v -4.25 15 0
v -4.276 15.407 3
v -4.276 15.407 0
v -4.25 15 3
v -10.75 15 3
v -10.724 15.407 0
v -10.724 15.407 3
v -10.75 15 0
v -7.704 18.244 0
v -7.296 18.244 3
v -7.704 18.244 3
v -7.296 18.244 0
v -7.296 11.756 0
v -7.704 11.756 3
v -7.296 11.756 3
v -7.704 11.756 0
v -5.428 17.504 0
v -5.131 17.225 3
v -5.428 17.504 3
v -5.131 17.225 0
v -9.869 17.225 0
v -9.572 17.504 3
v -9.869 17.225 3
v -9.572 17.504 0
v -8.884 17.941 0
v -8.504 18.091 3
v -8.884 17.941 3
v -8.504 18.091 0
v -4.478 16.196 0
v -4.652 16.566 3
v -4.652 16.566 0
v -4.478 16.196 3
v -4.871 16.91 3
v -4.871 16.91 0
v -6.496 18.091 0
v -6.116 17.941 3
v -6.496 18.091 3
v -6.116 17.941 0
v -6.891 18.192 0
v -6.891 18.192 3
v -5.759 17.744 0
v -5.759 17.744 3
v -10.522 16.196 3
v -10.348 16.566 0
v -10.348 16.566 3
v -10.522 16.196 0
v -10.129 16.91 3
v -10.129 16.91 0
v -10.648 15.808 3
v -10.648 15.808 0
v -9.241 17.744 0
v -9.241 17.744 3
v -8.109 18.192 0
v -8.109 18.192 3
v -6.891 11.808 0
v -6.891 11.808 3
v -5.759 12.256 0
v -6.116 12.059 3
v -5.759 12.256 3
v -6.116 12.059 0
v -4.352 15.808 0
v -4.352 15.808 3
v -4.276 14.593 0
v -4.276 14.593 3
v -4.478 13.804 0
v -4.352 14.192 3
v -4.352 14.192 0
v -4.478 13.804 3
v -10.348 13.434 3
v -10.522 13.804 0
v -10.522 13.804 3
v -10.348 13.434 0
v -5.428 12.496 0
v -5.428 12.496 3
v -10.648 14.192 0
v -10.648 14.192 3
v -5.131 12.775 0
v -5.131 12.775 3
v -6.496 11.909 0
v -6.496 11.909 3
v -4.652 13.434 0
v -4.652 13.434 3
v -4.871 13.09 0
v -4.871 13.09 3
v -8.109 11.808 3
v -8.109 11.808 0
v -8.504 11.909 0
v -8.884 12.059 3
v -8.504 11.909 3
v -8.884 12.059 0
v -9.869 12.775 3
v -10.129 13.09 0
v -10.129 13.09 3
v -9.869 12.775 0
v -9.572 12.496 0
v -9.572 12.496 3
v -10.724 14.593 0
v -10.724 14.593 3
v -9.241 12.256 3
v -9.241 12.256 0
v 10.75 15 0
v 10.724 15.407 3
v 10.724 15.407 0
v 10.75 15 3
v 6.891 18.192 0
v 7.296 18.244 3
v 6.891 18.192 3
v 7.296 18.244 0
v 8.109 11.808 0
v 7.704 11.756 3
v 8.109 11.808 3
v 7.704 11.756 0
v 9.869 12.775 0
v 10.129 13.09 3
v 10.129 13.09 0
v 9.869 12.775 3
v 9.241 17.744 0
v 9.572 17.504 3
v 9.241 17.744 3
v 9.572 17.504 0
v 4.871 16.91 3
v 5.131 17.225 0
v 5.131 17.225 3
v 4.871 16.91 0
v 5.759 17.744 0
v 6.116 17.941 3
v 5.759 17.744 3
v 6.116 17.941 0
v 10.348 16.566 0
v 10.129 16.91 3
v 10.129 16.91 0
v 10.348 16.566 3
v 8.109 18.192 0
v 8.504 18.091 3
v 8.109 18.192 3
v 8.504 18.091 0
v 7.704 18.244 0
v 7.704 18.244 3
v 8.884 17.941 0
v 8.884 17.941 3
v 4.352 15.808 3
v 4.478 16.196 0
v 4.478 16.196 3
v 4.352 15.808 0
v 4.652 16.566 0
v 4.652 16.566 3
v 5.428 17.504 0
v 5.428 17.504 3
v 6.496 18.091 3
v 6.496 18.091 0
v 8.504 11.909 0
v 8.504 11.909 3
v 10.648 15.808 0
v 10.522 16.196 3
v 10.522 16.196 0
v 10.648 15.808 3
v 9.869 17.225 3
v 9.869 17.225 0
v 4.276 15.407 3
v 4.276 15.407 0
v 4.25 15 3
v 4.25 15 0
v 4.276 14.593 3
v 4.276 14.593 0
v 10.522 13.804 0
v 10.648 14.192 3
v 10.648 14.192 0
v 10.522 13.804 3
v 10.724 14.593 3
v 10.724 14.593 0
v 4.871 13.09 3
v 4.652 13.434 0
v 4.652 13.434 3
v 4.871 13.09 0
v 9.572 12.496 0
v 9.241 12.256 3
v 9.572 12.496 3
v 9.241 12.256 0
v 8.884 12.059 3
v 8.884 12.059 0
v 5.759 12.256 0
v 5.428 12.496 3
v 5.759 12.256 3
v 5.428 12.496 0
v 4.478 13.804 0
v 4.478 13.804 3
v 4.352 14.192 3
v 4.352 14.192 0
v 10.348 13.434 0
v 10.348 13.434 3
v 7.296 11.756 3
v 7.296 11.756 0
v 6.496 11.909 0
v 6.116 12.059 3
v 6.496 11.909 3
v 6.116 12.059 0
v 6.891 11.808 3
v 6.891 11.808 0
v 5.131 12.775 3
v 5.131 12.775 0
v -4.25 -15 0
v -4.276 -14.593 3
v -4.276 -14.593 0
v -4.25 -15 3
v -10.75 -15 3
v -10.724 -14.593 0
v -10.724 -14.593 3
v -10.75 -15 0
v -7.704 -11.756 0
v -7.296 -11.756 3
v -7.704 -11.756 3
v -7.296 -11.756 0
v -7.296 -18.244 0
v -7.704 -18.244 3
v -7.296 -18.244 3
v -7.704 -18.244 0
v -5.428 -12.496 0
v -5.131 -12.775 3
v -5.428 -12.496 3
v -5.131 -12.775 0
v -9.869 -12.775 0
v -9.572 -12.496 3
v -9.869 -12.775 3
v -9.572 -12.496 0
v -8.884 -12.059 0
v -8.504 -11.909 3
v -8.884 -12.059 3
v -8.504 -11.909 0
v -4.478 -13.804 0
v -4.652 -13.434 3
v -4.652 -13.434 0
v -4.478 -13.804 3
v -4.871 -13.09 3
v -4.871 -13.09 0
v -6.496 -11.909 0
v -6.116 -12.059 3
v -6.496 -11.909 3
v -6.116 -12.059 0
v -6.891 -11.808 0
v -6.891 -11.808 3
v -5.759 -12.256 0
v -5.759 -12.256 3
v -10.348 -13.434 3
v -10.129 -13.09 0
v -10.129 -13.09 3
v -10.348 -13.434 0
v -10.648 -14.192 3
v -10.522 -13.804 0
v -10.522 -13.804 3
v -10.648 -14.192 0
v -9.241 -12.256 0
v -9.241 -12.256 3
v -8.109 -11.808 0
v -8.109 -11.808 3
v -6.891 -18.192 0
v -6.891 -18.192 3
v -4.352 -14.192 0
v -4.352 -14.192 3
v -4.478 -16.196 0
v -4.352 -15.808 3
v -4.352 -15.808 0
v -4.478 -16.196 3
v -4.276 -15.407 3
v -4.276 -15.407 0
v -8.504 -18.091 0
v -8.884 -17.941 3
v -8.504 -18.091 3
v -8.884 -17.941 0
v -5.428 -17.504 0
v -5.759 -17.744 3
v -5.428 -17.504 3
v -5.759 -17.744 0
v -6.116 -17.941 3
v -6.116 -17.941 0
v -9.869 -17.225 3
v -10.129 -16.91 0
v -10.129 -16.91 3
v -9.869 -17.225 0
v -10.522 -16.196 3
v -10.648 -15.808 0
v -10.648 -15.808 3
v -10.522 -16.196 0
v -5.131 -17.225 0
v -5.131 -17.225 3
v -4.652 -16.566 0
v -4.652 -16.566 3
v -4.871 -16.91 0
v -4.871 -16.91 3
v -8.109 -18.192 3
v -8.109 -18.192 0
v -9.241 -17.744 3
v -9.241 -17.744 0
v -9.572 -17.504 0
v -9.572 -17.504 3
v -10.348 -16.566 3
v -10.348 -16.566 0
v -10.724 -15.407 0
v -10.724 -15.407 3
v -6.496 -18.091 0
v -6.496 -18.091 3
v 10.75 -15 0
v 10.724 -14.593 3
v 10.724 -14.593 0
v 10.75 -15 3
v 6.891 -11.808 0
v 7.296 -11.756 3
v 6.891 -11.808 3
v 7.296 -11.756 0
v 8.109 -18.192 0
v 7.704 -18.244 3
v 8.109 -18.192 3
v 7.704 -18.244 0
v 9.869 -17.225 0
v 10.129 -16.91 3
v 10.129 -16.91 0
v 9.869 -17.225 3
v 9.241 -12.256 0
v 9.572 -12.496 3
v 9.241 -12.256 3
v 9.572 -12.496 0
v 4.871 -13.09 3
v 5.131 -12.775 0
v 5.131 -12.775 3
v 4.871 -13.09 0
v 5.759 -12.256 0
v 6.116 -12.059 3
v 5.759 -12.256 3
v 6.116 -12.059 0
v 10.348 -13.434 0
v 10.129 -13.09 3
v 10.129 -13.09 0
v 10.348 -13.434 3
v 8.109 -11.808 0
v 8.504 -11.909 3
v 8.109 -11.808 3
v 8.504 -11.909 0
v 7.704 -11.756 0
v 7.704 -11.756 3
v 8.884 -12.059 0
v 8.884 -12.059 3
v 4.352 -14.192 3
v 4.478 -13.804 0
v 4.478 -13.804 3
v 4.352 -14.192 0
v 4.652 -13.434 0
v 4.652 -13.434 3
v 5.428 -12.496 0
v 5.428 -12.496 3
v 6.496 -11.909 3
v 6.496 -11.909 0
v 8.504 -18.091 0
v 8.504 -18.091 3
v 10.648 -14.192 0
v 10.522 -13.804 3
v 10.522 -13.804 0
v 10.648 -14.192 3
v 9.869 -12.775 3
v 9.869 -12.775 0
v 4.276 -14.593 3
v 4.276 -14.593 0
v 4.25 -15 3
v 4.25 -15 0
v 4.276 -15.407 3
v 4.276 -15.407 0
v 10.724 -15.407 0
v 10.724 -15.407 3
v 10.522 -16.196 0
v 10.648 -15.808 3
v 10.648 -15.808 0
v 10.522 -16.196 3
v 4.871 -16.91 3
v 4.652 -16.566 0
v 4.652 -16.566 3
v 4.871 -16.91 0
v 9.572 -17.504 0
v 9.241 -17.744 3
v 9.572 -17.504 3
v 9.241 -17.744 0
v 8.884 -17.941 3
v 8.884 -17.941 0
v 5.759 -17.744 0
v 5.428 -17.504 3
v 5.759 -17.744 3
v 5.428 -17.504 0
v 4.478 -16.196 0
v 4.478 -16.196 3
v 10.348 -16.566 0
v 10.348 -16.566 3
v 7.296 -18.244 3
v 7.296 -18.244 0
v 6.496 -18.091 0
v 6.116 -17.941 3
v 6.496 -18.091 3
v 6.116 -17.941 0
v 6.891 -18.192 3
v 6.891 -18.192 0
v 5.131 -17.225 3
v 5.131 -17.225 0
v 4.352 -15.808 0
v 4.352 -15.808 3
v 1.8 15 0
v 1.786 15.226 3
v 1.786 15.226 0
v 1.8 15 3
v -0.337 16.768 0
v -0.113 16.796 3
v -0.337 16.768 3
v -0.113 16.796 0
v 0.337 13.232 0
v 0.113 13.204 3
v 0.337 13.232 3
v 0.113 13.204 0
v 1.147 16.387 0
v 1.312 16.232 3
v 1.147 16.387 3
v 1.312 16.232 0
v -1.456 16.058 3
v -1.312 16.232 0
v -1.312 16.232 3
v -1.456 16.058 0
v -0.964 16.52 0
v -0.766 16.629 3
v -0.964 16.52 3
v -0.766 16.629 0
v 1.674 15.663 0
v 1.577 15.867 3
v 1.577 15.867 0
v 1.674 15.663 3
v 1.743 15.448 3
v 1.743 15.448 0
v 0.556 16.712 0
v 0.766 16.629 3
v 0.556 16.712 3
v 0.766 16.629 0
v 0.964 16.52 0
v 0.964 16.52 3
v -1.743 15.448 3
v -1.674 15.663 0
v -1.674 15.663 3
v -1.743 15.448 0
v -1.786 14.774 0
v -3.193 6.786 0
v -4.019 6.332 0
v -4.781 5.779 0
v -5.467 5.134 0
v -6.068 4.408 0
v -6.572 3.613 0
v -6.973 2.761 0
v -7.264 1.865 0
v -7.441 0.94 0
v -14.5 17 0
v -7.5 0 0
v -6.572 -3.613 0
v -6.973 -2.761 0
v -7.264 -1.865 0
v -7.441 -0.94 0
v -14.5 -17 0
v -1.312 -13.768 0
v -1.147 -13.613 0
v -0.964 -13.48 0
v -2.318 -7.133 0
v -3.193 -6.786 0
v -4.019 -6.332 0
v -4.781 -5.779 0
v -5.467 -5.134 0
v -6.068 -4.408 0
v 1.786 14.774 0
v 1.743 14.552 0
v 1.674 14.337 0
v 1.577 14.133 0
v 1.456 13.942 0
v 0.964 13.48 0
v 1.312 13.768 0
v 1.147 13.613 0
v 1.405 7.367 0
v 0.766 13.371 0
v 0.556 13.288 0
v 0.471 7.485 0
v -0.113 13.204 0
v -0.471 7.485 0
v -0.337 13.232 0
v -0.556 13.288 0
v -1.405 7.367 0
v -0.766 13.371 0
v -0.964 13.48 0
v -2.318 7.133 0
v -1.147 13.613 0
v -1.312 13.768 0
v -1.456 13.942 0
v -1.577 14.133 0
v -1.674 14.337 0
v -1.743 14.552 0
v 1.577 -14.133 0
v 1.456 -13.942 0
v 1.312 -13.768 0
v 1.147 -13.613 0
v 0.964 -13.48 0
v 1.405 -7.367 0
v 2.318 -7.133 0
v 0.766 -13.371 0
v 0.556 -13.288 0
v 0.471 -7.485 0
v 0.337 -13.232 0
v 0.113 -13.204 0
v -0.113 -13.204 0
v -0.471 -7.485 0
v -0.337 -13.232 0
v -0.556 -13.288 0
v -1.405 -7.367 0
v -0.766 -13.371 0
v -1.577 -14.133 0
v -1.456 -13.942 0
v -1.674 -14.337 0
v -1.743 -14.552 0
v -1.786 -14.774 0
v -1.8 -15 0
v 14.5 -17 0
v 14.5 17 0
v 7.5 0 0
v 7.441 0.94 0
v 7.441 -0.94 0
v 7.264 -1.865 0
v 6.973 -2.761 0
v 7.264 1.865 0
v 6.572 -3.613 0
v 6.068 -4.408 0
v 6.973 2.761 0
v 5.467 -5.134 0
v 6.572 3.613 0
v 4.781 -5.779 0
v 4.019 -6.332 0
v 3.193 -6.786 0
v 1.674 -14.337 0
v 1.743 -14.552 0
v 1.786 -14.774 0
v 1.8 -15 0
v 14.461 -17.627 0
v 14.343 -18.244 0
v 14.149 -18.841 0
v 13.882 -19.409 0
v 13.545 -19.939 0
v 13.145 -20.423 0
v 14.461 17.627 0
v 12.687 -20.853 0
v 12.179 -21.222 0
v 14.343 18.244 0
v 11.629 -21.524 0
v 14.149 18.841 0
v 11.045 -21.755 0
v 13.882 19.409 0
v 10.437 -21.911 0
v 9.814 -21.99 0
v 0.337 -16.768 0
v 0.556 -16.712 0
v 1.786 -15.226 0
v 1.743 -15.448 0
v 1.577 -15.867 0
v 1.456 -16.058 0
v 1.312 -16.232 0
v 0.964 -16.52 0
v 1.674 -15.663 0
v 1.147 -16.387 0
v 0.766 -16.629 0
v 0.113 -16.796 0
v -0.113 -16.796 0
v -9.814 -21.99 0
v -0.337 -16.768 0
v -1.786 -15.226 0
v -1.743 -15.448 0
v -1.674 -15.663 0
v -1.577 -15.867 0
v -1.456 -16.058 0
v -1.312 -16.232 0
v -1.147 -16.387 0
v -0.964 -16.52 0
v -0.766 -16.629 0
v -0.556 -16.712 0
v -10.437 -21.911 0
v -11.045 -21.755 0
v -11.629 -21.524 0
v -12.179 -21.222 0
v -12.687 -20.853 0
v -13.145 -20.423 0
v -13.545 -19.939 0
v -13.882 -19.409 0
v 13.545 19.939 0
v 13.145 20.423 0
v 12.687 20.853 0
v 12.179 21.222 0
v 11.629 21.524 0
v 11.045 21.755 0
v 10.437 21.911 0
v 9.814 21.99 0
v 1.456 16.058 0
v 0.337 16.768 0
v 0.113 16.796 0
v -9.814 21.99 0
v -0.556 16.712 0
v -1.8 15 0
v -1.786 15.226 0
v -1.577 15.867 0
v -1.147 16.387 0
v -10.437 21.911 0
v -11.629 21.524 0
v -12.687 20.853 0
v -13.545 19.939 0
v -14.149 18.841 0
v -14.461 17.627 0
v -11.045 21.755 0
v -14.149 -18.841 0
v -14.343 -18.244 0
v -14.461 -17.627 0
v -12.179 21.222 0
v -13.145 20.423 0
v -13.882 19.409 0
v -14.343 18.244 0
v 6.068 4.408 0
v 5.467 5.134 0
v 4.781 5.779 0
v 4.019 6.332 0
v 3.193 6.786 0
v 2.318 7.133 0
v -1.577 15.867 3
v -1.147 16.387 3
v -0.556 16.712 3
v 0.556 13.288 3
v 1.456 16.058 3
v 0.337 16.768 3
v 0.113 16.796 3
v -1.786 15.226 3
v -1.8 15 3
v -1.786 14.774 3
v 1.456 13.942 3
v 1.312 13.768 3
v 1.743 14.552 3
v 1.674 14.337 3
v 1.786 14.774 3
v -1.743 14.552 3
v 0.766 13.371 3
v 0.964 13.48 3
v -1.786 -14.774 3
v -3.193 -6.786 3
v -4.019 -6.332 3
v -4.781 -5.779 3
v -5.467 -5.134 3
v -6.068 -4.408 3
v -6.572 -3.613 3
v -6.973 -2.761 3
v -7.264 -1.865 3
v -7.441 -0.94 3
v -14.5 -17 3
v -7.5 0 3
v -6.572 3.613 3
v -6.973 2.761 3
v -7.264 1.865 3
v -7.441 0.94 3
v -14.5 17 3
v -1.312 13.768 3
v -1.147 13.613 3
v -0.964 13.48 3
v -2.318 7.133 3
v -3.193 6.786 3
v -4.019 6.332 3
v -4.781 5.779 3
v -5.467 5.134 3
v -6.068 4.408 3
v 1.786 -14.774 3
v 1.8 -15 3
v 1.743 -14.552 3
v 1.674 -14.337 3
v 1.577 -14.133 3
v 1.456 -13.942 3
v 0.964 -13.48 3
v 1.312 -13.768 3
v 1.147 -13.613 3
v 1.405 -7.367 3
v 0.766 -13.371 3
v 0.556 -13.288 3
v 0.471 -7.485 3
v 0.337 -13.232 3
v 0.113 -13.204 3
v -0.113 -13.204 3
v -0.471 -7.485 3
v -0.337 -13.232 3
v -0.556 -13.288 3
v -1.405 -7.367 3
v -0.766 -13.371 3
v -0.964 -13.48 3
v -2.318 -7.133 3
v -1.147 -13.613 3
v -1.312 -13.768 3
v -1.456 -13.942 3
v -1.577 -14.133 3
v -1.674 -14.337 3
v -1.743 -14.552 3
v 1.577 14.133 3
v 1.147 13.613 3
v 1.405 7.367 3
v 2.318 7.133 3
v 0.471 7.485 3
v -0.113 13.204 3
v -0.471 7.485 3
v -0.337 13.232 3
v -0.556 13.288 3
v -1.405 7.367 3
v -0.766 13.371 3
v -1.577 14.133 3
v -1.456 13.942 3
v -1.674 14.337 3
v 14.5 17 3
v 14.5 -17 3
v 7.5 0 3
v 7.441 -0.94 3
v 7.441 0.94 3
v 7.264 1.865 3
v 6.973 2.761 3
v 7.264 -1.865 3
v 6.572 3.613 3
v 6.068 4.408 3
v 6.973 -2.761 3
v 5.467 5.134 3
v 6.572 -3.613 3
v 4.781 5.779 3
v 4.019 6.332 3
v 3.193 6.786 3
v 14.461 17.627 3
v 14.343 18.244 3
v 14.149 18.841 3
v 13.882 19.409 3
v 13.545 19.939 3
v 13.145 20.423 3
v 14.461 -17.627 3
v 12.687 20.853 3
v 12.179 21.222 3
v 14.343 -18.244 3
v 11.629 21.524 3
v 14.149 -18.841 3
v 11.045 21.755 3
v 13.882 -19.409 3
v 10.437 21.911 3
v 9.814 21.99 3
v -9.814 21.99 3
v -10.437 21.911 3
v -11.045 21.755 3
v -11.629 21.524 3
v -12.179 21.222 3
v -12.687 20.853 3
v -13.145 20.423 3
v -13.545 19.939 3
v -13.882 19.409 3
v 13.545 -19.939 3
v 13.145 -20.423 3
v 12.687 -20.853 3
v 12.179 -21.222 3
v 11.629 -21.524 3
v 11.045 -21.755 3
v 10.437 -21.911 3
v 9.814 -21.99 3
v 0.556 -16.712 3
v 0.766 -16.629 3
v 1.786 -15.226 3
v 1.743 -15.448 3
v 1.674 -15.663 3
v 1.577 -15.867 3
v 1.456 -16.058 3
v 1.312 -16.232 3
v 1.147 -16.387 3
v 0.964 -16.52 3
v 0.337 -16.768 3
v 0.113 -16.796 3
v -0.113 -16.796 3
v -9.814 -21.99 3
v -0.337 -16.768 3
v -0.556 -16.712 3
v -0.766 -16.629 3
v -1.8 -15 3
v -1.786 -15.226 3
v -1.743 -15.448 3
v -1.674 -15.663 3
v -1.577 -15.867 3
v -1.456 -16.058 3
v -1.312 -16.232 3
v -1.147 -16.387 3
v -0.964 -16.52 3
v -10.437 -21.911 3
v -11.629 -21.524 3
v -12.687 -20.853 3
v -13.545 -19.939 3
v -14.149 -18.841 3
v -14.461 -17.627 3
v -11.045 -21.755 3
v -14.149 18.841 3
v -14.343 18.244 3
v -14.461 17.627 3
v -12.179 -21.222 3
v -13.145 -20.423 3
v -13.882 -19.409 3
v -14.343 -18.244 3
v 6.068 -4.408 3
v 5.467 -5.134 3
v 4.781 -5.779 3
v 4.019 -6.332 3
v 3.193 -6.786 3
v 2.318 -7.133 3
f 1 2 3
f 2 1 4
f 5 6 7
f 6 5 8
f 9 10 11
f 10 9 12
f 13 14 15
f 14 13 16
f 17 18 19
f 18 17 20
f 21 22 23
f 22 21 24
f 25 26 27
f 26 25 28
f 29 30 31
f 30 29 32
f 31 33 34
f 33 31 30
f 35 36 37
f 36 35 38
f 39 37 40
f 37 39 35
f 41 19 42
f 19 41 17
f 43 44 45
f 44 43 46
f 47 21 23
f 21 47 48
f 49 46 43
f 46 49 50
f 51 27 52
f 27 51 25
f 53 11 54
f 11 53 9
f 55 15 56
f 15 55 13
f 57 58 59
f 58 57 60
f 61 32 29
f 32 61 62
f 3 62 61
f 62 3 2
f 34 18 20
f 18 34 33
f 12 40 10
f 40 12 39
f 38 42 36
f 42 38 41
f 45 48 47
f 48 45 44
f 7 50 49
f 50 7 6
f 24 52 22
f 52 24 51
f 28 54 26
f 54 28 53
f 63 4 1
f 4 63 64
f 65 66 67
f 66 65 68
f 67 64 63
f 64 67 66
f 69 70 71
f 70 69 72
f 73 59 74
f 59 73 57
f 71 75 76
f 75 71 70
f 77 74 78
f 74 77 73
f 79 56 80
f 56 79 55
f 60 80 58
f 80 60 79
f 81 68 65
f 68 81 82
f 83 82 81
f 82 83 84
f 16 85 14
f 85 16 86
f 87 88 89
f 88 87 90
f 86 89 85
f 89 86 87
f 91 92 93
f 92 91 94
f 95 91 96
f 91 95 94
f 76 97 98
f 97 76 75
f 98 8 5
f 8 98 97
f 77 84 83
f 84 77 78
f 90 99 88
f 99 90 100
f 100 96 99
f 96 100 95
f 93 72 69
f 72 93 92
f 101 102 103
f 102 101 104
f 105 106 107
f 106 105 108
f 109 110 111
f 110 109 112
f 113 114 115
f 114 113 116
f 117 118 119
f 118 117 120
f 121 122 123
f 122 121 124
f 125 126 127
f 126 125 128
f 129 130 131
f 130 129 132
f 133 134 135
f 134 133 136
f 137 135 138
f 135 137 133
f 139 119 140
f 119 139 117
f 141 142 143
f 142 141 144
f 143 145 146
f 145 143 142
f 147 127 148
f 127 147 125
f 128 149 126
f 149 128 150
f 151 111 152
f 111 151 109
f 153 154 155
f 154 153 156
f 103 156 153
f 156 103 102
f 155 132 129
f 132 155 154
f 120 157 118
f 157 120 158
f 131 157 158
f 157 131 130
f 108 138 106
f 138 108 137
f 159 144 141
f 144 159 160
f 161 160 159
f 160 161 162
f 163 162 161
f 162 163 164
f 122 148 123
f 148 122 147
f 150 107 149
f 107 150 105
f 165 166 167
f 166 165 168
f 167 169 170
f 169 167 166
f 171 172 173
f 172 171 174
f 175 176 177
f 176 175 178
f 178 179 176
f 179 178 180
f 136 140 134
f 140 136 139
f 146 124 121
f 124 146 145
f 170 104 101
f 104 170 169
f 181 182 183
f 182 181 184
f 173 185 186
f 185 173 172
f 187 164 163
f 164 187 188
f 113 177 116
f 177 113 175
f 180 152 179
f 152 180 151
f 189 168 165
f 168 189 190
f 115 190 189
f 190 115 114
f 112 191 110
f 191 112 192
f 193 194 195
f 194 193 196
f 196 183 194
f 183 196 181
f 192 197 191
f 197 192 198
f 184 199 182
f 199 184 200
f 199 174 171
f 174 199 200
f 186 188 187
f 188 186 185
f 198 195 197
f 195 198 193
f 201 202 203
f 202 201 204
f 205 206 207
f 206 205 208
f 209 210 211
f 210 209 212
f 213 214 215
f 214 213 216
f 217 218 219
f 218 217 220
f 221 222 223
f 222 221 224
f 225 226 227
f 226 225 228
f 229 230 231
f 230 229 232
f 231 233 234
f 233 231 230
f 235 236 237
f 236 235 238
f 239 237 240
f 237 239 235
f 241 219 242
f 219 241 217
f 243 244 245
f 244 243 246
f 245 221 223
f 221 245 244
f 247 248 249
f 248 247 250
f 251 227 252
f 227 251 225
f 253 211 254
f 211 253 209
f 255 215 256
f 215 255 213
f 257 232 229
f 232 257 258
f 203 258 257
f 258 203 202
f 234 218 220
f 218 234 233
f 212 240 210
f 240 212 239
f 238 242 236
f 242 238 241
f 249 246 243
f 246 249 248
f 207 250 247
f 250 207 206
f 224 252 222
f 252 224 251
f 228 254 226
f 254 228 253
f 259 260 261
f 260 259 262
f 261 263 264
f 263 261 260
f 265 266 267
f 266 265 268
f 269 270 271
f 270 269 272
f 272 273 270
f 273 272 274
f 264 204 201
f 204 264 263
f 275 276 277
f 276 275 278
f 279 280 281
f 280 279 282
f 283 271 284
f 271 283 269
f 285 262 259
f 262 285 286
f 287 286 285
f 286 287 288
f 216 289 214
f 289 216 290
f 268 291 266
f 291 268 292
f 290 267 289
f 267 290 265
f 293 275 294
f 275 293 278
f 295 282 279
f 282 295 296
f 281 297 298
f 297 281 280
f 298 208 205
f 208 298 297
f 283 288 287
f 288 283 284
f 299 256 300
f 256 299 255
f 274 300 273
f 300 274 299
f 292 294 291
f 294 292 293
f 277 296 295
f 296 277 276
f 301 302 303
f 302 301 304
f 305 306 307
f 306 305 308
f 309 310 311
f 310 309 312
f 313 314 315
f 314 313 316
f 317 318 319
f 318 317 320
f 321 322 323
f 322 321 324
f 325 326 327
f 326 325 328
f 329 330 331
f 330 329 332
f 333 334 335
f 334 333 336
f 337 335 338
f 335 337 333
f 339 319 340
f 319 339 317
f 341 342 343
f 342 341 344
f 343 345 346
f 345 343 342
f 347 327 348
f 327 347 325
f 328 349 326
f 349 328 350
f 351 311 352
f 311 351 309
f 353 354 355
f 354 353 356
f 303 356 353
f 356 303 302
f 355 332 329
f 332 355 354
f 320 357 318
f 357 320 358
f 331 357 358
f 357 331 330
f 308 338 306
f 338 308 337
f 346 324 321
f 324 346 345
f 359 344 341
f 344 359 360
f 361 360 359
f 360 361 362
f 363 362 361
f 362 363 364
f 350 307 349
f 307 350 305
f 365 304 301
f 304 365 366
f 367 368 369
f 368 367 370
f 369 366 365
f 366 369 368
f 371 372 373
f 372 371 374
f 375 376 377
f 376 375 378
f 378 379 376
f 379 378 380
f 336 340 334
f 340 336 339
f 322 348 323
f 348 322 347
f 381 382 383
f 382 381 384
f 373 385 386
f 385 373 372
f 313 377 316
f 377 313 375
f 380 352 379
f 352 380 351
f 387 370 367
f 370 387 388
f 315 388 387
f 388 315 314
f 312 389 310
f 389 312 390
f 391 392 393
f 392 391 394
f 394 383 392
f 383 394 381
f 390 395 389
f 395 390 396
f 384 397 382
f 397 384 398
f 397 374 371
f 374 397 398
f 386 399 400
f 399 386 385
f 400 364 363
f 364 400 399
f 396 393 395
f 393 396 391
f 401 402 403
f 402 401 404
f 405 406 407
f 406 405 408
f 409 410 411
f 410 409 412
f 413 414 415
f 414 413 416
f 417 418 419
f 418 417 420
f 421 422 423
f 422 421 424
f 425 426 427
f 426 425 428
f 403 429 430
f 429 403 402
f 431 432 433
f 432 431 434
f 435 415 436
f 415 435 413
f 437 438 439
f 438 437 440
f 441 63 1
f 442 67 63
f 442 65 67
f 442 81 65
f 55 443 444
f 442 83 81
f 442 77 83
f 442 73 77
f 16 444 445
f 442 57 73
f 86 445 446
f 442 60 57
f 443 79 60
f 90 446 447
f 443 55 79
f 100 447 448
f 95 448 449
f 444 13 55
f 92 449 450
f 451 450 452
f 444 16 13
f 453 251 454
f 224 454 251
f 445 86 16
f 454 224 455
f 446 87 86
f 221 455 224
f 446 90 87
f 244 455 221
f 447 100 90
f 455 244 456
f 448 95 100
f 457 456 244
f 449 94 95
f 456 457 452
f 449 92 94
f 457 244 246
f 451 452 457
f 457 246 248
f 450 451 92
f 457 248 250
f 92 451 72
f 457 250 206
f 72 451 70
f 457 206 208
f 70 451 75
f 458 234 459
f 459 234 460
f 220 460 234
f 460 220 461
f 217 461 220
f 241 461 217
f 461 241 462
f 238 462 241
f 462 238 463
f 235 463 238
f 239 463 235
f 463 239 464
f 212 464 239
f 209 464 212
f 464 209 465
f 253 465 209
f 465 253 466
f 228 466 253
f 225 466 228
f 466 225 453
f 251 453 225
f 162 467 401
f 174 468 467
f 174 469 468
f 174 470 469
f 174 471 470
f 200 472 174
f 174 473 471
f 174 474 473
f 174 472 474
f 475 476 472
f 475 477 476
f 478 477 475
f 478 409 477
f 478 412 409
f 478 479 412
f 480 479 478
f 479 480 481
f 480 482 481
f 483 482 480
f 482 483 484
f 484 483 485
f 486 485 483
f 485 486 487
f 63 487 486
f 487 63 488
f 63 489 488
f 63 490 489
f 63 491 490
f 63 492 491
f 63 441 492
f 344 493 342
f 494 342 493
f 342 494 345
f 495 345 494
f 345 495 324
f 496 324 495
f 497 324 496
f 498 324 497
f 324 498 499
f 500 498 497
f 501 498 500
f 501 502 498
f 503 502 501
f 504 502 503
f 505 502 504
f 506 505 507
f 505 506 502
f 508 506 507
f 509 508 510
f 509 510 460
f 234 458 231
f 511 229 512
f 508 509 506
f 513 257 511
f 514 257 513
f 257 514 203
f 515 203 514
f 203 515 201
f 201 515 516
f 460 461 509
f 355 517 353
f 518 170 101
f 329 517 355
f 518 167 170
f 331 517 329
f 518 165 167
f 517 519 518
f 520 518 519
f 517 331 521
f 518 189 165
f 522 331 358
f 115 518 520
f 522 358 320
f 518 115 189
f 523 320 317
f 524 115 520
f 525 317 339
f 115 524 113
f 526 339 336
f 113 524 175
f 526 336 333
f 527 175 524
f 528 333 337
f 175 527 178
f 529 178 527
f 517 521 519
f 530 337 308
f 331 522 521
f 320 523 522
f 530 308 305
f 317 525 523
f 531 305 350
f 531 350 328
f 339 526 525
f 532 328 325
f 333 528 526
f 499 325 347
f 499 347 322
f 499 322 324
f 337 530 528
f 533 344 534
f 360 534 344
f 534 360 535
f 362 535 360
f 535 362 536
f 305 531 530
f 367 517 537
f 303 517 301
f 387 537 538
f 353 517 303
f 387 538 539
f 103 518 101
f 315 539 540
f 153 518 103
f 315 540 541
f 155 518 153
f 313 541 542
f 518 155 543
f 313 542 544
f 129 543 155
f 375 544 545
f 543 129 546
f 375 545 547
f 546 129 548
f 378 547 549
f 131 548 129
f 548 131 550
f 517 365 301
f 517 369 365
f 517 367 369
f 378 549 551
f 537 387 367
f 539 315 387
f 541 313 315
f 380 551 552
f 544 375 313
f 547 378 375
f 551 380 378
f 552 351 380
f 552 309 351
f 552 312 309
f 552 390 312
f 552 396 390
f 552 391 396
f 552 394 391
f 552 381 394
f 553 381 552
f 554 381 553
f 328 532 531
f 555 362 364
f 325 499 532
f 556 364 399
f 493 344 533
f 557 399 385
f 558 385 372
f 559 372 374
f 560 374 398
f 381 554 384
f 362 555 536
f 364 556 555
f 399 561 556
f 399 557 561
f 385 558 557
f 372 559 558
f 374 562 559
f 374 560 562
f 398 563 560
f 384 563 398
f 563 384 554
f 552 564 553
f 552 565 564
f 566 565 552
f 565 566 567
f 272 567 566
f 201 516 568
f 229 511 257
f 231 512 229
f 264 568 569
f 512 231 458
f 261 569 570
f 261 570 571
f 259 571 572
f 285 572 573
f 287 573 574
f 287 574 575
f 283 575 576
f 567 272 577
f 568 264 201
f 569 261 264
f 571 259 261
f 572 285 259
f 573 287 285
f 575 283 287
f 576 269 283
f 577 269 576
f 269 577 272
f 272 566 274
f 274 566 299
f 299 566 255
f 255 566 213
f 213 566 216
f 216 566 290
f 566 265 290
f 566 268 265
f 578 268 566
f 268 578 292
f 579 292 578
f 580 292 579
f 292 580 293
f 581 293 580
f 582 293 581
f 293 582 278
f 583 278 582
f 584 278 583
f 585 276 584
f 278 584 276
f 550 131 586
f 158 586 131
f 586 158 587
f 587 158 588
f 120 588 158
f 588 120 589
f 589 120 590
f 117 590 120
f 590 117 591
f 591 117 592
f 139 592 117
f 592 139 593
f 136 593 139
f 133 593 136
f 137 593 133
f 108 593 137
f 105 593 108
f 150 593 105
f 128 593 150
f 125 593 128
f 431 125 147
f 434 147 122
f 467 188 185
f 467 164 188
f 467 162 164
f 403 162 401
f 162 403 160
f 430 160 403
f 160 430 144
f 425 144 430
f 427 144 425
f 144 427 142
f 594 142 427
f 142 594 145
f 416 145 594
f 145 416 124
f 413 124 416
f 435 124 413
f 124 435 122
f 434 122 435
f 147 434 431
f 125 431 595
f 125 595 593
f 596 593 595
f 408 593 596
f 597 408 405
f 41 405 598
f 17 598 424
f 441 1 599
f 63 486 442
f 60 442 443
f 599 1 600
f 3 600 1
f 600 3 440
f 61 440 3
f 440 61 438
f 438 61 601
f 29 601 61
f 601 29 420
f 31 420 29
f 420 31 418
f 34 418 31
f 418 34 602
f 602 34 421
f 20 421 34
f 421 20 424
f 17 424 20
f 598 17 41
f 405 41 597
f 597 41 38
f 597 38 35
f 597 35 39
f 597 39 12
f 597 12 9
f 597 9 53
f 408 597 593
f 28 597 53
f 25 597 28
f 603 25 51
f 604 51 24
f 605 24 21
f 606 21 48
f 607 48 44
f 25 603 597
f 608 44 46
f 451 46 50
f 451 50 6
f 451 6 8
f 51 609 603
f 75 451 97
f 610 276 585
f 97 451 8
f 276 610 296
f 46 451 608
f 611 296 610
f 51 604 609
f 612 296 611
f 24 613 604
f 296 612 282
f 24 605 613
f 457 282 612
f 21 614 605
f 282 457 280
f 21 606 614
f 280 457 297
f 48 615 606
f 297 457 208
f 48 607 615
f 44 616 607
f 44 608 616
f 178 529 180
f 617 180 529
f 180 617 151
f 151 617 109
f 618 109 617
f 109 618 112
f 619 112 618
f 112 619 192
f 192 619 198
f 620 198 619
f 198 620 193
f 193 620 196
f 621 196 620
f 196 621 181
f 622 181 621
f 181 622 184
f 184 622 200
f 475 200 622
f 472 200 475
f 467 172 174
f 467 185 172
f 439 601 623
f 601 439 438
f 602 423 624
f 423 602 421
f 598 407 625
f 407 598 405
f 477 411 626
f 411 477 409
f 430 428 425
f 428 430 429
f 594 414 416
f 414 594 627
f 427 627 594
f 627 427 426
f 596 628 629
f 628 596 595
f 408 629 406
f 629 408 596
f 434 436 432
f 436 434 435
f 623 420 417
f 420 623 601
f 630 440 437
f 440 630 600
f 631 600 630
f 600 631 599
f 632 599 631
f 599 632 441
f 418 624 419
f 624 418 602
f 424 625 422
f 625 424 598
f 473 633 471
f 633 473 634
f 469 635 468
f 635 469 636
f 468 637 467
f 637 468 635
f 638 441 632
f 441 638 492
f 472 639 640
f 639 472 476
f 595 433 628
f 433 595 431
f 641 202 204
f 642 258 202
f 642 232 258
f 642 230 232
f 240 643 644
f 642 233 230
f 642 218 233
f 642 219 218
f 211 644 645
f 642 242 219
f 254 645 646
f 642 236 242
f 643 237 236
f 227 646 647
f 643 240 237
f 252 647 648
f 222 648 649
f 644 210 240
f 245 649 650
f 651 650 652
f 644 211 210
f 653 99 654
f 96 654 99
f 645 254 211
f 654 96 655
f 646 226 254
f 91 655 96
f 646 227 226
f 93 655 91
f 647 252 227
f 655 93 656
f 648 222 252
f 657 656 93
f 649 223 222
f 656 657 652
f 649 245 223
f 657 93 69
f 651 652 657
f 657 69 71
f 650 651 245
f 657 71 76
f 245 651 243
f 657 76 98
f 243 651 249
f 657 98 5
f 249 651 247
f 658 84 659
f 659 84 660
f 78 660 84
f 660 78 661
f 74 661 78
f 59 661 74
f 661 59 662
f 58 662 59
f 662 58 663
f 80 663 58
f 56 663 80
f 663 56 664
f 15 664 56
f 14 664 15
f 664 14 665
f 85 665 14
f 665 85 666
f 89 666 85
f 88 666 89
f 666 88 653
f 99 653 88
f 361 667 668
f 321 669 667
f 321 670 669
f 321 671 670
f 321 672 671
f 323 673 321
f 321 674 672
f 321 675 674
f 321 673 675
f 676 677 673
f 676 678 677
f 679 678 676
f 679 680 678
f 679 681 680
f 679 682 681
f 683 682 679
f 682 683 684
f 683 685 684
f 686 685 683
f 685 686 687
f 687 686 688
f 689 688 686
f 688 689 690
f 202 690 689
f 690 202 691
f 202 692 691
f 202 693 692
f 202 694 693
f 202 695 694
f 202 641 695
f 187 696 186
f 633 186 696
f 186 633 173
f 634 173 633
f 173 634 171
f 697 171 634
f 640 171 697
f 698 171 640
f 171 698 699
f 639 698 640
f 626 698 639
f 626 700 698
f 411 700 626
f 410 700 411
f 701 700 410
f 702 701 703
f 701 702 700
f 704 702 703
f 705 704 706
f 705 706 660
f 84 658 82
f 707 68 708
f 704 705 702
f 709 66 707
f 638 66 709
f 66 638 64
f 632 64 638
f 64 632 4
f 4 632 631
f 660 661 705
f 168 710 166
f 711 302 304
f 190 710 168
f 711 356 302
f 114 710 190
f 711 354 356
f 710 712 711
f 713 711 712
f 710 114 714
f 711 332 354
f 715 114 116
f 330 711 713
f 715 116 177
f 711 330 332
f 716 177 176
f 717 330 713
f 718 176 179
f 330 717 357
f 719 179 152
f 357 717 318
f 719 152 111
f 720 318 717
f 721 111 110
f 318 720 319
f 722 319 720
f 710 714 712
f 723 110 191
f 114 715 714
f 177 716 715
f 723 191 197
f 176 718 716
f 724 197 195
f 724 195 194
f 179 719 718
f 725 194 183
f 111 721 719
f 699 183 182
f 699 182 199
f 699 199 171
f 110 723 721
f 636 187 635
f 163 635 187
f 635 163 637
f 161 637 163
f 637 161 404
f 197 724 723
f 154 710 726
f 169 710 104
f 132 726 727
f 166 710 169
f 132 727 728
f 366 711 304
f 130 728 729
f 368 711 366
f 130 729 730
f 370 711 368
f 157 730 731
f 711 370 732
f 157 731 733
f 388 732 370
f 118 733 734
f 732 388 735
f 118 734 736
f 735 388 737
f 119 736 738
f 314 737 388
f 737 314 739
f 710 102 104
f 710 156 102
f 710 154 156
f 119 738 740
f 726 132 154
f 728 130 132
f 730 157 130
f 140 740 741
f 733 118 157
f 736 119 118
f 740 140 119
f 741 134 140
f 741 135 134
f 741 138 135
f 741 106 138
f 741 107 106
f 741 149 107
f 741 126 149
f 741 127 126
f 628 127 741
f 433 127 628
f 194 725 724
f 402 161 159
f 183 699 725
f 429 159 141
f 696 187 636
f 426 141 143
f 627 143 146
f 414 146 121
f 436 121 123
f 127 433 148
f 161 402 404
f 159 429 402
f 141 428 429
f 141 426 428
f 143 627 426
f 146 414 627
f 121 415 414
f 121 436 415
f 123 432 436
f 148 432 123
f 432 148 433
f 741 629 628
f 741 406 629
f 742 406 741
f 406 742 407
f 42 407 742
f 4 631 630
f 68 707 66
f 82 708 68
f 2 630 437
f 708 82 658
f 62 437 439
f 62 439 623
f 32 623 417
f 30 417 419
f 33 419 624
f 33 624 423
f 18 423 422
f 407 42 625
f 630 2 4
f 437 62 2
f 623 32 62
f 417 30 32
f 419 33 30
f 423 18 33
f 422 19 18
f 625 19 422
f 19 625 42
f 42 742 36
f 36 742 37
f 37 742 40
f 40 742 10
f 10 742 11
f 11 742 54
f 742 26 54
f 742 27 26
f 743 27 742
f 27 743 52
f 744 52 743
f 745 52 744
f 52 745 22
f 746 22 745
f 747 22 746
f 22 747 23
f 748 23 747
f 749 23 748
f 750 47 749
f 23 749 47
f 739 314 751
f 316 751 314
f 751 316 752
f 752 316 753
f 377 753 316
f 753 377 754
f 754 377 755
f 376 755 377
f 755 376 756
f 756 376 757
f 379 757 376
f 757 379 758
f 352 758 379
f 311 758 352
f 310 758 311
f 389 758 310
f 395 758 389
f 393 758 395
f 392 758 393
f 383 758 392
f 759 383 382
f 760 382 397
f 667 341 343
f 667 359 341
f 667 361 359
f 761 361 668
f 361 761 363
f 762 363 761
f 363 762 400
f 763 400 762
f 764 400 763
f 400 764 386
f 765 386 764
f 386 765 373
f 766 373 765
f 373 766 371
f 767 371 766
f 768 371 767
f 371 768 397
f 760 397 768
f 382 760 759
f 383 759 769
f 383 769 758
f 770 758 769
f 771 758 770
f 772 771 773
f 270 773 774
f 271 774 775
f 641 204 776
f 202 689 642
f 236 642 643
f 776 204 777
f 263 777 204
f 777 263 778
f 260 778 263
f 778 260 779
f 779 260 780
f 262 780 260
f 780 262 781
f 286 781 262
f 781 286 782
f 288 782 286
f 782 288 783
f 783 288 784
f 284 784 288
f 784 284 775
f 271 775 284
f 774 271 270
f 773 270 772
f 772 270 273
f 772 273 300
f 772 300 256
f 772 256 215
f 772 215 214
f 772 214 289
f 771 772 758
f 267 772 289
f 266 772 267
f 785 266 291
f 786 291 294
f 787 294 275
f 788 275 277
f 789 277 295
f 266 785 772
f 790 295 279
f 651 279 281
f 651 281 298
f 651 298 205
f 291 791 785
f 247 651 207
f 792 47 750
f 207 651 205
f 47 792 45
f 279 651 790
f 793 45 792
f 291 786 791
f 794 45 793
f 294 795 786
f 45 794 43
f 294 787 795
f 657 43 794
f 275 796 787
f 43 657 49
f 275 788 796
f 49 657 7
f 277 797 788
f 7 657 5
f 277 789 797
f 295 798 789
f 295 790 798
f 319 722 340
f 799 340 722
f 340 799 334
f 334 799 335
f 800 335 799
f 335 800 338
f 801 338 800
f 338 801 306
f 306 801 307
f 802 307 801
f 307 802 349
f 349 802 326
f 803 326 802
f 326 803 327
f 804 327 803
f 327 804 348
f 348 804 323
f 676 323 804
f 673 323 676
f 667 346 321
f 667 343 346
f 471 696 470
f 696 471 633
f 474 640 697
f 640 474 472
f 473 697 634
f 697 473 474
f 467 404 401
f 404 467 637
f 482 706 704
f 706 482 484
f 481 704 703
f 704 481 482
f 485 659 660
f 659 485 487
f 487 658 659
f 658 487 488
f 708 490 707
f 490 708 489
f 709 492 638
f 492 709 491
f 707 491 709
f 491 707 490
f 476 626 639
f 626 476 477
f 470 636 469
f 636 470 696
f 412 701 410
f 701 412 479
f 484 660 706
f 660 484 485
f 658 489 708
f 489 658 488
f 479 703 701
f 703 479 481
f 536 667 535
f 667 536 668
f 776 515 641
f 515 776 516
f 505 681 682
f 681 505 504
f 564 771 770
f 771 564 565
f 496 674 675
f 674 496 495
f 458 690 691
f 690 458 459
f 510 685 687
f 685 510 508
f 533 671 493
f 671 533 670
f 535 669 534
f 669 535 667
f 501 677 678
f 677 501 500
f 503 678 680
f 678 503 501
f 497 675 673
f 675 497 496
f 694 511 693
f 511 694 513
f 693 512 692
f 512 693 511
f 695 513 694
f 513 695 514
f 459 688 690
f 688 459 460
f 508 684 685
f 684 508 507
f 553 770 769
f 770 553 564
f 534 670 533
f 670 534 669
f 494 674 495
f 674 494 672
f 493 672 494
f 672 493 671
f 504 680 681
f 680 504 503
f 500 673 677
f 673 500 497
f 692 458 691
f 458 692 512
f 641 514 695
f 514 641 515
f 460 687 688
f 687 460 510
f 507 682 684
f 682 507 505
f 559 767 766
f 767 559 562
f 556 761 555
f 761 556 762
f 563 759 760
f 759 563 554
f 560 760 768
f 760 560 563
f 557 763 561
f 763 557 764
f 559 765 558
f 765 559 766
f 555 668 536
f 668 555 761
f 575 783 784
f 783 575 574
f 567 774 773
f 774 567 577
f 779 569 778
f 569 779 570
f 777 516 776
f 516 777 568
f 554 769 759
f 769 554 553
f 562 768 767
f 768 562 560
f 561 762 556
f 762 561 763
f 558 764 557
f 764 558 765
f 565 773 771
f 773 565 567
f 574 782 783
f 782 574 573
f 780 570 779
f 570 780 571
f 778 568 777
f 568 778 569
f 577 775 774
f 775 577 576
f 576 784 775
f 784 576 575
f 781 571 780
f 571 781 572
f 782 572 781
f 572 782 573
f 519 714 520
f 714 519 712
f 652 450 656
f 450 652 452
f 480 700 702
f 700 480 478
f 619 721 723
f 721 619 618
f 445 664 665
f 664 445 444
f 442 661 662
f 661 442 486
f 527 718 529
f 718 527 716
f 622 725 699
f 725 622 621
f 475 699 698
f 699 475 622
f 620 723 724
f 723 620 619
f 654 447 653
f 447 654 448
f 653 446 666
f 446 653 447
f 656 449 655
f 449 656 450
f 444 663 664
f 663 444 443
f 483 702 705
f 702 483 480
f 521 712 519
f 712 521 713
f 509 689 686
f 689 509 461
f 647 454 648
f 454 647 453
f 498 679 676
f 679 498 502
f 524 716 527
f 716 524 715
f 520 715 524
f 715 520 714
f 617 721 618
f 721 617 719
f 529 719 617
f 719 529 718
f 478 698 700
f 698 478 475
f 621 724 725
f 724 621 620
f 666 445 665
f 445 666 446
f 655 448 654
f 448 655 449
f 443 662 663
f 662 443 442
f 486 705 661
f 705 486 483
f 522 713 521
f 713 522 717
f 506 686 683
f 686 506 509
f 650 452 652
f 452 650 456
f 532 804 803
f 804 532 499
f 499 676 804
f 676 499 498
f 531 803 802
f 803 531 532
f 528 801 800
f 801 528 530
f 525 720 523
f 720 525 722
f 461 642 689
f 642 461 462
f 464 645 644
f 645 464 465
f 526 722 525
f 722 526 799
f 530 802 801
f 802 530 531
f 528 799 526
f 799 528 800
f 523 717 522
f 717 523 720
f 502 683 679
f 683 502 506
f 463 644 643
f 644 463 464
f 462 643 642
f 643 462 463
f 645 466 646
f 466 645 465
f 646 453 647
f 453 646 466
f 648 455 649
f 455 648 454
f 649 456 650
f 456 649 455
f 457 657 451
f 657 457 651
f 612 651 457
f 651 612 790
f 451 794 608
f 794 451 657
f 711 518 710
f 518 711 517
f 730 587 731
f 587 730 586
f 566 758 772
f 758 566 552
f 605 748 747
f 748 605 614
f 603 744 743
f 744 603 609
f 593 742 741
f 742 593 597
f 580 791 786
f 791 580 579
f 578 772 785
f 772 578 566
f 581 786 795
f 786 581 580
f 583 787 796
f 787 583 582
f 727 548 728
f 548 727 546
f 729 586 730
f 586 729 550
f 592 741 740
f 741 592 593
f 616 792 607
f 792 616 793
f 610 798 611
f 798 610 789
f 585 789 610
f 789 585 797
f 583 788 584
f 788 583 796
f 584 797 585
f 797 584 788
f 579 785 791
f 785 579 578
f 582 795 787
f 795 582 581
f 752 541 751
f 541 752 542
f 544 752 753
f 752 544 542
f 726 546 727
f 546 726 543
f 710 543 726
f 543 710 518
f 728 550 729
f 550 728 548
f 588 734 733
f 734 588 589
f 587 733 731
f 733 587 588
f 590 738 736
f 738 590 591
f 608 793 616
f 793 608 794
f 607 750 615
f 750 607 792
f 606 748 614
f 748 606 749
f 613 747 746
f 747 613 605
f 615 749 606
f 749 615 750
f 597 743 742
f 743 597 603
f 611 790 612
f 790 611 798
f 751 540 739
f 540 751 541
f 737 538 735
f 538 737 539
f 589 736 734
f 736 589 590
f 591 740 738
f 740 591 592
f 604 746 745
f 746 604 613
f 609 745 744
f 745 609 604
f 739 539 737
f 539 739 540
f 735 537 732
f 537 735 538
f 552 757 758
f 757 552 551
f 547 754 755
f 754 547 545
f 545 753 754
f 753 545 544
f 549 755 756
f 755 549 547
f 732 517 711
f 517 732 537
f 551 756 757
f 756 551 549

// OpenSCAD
$fn = 50;


difference() {
	union() {
		hull() {
			translate(v = [-9.5000000000, 17.0000000000, 0]) {
				cylinder(h = 3, r = 5);
			}
			translate(v = [9.5000000000, 17.0000000000, 0]) {
				cylinder(h = 3, r = 5);
			}
			translate(v = [-9.5000000000, -17.0000000000, 0]) {
				cylinder(h = 3, r = 5);
			}
			translate(v = [9.5000000000, -17.0000000000, 0]) {
				cylinder(h = 3, r = 5);
			}
		}
	}
	union() {
		#translate(v = [-7.5000000000, 15.0000000000, 0]) {
			cylinder(h = 3, r = 3.2500000000);
		}
		#translate(v = [7.5000000000, 15.0000000000, 0]) {
			cylinder(h = 3, r = 3.2500000000);
		}
		#translate(v = [-7.5000000000, -15.0000000000, 0]) {
			cylinder(h = 3, r = 3.2500000000);
		}
		#translate(v = [7.5000000000, -15.0000000000, 0]) {
			cylinder(h = 3, r = 3.2500000000);
		}
		#translate(v = [-7.5000000000, -15.0000000000, -100.0000000000]) {
			cylinder(h = 200, r = 3.2500000000);
		}
		#translate(v = [-7.5000000000, 15.0000000000, -100.0000000000]) {
			cylinder(h = 200, r = 3.2500000000);
		}
		#translate(v = [7.5000000000, -15.0000000000, -100.0000000000]) {
			cylinder(h = 200, r = 3.2500000000);
		}
		#translate(v = [7.5000000000, 15.0000000000, -100.0000000000]) {
			cylinder(h = 200, r = 3.2500000000);
		}
		#translate(v = [-7.5000000000, 15.0000000000, 0]) {
			cylinder(h = 3, r = 1.8000000000);
		}
		#translate(v = [0.0000000000, 15.0000000000, 0]) {
			cylinder(h = 3, r = 1.8000000000);
		}
		#translate(v = [7.5000000000, 15.0000000000, 0]) {
			cylinder(h = 3, r = 1.8000000000);
		}
		#translate(v = [-7.5000000000, -15.0000000000, 0]) {
			cylinder(h = 3, r = 1.8000000000);
		}
		#translate(v = [0.0000000000, -15.0000000000, 0]) {
			cylinder(h = 3, r = 1.8000000000);
		}
		#translate(v = [7.5000000000, -15.0000000000, 0]) {
			cylinder(h = 3, r = 1.8000000000);
		}
		#translate(v = [-7.5000000000, 15.0000000000, 0]) {
			cylinder(h = 3, r = 1.8000000000);
		}
		#translate(v = [0.0000000000, 15.0000000000, 0]) {
			cylinder(h = 3, r = 1.8000000000);
		}
		#translate(v = [7.5000000000, 15.0000000000, 0]) {
			cylinder(h = 3, r = 1.8000000000);
		}
		#translate(v = [-7.5000000000, -15.0000000000, 0]) {
			cylinder(h = 3, r = 1.8000000000);
		}
		#translate(v = [0.0000000000, -15.0000000000, 0]) {
			cylinder(h = 3, r = 1.8000000000);
		}
		#translate(v = [7.5000000000, -15.0000000000, 0]) {
			cylinder(h = 3, r = 1.8000000000);
		}
		#translate(v = [-7.5000000000, 15.0000000000, 0]) {
			cylinder(h = 3, r = 1.8000000000);
		}
		#translate(v = [0.0000000000, 15.0000000000, 0]) {
			cylinder(h = 3, r = 1.8000000000);
		}
		#translate(v = [7.5000000000, 15.0000000000, 0]) {
			cylinder(h = 3, r = 1.8000000000);
		}
		#translate(v = [-7.5000000000, -15.0000000000, 0]) {
			cylinder(h = 3, r = 1.8000000000);
		}
		#translate(v = [0.0000000000, -15.0000000000, 0]) {
			cylinder(h = 3, r = 1.8000000000);
		}
		#translate(v = [7.5000000000, -15.0000000000, 0]) {
			cylinder(h = 3, r = 1.8000000000);
		}
		#cylinder(h = 3, r = 7.5000000000);
	}
}
